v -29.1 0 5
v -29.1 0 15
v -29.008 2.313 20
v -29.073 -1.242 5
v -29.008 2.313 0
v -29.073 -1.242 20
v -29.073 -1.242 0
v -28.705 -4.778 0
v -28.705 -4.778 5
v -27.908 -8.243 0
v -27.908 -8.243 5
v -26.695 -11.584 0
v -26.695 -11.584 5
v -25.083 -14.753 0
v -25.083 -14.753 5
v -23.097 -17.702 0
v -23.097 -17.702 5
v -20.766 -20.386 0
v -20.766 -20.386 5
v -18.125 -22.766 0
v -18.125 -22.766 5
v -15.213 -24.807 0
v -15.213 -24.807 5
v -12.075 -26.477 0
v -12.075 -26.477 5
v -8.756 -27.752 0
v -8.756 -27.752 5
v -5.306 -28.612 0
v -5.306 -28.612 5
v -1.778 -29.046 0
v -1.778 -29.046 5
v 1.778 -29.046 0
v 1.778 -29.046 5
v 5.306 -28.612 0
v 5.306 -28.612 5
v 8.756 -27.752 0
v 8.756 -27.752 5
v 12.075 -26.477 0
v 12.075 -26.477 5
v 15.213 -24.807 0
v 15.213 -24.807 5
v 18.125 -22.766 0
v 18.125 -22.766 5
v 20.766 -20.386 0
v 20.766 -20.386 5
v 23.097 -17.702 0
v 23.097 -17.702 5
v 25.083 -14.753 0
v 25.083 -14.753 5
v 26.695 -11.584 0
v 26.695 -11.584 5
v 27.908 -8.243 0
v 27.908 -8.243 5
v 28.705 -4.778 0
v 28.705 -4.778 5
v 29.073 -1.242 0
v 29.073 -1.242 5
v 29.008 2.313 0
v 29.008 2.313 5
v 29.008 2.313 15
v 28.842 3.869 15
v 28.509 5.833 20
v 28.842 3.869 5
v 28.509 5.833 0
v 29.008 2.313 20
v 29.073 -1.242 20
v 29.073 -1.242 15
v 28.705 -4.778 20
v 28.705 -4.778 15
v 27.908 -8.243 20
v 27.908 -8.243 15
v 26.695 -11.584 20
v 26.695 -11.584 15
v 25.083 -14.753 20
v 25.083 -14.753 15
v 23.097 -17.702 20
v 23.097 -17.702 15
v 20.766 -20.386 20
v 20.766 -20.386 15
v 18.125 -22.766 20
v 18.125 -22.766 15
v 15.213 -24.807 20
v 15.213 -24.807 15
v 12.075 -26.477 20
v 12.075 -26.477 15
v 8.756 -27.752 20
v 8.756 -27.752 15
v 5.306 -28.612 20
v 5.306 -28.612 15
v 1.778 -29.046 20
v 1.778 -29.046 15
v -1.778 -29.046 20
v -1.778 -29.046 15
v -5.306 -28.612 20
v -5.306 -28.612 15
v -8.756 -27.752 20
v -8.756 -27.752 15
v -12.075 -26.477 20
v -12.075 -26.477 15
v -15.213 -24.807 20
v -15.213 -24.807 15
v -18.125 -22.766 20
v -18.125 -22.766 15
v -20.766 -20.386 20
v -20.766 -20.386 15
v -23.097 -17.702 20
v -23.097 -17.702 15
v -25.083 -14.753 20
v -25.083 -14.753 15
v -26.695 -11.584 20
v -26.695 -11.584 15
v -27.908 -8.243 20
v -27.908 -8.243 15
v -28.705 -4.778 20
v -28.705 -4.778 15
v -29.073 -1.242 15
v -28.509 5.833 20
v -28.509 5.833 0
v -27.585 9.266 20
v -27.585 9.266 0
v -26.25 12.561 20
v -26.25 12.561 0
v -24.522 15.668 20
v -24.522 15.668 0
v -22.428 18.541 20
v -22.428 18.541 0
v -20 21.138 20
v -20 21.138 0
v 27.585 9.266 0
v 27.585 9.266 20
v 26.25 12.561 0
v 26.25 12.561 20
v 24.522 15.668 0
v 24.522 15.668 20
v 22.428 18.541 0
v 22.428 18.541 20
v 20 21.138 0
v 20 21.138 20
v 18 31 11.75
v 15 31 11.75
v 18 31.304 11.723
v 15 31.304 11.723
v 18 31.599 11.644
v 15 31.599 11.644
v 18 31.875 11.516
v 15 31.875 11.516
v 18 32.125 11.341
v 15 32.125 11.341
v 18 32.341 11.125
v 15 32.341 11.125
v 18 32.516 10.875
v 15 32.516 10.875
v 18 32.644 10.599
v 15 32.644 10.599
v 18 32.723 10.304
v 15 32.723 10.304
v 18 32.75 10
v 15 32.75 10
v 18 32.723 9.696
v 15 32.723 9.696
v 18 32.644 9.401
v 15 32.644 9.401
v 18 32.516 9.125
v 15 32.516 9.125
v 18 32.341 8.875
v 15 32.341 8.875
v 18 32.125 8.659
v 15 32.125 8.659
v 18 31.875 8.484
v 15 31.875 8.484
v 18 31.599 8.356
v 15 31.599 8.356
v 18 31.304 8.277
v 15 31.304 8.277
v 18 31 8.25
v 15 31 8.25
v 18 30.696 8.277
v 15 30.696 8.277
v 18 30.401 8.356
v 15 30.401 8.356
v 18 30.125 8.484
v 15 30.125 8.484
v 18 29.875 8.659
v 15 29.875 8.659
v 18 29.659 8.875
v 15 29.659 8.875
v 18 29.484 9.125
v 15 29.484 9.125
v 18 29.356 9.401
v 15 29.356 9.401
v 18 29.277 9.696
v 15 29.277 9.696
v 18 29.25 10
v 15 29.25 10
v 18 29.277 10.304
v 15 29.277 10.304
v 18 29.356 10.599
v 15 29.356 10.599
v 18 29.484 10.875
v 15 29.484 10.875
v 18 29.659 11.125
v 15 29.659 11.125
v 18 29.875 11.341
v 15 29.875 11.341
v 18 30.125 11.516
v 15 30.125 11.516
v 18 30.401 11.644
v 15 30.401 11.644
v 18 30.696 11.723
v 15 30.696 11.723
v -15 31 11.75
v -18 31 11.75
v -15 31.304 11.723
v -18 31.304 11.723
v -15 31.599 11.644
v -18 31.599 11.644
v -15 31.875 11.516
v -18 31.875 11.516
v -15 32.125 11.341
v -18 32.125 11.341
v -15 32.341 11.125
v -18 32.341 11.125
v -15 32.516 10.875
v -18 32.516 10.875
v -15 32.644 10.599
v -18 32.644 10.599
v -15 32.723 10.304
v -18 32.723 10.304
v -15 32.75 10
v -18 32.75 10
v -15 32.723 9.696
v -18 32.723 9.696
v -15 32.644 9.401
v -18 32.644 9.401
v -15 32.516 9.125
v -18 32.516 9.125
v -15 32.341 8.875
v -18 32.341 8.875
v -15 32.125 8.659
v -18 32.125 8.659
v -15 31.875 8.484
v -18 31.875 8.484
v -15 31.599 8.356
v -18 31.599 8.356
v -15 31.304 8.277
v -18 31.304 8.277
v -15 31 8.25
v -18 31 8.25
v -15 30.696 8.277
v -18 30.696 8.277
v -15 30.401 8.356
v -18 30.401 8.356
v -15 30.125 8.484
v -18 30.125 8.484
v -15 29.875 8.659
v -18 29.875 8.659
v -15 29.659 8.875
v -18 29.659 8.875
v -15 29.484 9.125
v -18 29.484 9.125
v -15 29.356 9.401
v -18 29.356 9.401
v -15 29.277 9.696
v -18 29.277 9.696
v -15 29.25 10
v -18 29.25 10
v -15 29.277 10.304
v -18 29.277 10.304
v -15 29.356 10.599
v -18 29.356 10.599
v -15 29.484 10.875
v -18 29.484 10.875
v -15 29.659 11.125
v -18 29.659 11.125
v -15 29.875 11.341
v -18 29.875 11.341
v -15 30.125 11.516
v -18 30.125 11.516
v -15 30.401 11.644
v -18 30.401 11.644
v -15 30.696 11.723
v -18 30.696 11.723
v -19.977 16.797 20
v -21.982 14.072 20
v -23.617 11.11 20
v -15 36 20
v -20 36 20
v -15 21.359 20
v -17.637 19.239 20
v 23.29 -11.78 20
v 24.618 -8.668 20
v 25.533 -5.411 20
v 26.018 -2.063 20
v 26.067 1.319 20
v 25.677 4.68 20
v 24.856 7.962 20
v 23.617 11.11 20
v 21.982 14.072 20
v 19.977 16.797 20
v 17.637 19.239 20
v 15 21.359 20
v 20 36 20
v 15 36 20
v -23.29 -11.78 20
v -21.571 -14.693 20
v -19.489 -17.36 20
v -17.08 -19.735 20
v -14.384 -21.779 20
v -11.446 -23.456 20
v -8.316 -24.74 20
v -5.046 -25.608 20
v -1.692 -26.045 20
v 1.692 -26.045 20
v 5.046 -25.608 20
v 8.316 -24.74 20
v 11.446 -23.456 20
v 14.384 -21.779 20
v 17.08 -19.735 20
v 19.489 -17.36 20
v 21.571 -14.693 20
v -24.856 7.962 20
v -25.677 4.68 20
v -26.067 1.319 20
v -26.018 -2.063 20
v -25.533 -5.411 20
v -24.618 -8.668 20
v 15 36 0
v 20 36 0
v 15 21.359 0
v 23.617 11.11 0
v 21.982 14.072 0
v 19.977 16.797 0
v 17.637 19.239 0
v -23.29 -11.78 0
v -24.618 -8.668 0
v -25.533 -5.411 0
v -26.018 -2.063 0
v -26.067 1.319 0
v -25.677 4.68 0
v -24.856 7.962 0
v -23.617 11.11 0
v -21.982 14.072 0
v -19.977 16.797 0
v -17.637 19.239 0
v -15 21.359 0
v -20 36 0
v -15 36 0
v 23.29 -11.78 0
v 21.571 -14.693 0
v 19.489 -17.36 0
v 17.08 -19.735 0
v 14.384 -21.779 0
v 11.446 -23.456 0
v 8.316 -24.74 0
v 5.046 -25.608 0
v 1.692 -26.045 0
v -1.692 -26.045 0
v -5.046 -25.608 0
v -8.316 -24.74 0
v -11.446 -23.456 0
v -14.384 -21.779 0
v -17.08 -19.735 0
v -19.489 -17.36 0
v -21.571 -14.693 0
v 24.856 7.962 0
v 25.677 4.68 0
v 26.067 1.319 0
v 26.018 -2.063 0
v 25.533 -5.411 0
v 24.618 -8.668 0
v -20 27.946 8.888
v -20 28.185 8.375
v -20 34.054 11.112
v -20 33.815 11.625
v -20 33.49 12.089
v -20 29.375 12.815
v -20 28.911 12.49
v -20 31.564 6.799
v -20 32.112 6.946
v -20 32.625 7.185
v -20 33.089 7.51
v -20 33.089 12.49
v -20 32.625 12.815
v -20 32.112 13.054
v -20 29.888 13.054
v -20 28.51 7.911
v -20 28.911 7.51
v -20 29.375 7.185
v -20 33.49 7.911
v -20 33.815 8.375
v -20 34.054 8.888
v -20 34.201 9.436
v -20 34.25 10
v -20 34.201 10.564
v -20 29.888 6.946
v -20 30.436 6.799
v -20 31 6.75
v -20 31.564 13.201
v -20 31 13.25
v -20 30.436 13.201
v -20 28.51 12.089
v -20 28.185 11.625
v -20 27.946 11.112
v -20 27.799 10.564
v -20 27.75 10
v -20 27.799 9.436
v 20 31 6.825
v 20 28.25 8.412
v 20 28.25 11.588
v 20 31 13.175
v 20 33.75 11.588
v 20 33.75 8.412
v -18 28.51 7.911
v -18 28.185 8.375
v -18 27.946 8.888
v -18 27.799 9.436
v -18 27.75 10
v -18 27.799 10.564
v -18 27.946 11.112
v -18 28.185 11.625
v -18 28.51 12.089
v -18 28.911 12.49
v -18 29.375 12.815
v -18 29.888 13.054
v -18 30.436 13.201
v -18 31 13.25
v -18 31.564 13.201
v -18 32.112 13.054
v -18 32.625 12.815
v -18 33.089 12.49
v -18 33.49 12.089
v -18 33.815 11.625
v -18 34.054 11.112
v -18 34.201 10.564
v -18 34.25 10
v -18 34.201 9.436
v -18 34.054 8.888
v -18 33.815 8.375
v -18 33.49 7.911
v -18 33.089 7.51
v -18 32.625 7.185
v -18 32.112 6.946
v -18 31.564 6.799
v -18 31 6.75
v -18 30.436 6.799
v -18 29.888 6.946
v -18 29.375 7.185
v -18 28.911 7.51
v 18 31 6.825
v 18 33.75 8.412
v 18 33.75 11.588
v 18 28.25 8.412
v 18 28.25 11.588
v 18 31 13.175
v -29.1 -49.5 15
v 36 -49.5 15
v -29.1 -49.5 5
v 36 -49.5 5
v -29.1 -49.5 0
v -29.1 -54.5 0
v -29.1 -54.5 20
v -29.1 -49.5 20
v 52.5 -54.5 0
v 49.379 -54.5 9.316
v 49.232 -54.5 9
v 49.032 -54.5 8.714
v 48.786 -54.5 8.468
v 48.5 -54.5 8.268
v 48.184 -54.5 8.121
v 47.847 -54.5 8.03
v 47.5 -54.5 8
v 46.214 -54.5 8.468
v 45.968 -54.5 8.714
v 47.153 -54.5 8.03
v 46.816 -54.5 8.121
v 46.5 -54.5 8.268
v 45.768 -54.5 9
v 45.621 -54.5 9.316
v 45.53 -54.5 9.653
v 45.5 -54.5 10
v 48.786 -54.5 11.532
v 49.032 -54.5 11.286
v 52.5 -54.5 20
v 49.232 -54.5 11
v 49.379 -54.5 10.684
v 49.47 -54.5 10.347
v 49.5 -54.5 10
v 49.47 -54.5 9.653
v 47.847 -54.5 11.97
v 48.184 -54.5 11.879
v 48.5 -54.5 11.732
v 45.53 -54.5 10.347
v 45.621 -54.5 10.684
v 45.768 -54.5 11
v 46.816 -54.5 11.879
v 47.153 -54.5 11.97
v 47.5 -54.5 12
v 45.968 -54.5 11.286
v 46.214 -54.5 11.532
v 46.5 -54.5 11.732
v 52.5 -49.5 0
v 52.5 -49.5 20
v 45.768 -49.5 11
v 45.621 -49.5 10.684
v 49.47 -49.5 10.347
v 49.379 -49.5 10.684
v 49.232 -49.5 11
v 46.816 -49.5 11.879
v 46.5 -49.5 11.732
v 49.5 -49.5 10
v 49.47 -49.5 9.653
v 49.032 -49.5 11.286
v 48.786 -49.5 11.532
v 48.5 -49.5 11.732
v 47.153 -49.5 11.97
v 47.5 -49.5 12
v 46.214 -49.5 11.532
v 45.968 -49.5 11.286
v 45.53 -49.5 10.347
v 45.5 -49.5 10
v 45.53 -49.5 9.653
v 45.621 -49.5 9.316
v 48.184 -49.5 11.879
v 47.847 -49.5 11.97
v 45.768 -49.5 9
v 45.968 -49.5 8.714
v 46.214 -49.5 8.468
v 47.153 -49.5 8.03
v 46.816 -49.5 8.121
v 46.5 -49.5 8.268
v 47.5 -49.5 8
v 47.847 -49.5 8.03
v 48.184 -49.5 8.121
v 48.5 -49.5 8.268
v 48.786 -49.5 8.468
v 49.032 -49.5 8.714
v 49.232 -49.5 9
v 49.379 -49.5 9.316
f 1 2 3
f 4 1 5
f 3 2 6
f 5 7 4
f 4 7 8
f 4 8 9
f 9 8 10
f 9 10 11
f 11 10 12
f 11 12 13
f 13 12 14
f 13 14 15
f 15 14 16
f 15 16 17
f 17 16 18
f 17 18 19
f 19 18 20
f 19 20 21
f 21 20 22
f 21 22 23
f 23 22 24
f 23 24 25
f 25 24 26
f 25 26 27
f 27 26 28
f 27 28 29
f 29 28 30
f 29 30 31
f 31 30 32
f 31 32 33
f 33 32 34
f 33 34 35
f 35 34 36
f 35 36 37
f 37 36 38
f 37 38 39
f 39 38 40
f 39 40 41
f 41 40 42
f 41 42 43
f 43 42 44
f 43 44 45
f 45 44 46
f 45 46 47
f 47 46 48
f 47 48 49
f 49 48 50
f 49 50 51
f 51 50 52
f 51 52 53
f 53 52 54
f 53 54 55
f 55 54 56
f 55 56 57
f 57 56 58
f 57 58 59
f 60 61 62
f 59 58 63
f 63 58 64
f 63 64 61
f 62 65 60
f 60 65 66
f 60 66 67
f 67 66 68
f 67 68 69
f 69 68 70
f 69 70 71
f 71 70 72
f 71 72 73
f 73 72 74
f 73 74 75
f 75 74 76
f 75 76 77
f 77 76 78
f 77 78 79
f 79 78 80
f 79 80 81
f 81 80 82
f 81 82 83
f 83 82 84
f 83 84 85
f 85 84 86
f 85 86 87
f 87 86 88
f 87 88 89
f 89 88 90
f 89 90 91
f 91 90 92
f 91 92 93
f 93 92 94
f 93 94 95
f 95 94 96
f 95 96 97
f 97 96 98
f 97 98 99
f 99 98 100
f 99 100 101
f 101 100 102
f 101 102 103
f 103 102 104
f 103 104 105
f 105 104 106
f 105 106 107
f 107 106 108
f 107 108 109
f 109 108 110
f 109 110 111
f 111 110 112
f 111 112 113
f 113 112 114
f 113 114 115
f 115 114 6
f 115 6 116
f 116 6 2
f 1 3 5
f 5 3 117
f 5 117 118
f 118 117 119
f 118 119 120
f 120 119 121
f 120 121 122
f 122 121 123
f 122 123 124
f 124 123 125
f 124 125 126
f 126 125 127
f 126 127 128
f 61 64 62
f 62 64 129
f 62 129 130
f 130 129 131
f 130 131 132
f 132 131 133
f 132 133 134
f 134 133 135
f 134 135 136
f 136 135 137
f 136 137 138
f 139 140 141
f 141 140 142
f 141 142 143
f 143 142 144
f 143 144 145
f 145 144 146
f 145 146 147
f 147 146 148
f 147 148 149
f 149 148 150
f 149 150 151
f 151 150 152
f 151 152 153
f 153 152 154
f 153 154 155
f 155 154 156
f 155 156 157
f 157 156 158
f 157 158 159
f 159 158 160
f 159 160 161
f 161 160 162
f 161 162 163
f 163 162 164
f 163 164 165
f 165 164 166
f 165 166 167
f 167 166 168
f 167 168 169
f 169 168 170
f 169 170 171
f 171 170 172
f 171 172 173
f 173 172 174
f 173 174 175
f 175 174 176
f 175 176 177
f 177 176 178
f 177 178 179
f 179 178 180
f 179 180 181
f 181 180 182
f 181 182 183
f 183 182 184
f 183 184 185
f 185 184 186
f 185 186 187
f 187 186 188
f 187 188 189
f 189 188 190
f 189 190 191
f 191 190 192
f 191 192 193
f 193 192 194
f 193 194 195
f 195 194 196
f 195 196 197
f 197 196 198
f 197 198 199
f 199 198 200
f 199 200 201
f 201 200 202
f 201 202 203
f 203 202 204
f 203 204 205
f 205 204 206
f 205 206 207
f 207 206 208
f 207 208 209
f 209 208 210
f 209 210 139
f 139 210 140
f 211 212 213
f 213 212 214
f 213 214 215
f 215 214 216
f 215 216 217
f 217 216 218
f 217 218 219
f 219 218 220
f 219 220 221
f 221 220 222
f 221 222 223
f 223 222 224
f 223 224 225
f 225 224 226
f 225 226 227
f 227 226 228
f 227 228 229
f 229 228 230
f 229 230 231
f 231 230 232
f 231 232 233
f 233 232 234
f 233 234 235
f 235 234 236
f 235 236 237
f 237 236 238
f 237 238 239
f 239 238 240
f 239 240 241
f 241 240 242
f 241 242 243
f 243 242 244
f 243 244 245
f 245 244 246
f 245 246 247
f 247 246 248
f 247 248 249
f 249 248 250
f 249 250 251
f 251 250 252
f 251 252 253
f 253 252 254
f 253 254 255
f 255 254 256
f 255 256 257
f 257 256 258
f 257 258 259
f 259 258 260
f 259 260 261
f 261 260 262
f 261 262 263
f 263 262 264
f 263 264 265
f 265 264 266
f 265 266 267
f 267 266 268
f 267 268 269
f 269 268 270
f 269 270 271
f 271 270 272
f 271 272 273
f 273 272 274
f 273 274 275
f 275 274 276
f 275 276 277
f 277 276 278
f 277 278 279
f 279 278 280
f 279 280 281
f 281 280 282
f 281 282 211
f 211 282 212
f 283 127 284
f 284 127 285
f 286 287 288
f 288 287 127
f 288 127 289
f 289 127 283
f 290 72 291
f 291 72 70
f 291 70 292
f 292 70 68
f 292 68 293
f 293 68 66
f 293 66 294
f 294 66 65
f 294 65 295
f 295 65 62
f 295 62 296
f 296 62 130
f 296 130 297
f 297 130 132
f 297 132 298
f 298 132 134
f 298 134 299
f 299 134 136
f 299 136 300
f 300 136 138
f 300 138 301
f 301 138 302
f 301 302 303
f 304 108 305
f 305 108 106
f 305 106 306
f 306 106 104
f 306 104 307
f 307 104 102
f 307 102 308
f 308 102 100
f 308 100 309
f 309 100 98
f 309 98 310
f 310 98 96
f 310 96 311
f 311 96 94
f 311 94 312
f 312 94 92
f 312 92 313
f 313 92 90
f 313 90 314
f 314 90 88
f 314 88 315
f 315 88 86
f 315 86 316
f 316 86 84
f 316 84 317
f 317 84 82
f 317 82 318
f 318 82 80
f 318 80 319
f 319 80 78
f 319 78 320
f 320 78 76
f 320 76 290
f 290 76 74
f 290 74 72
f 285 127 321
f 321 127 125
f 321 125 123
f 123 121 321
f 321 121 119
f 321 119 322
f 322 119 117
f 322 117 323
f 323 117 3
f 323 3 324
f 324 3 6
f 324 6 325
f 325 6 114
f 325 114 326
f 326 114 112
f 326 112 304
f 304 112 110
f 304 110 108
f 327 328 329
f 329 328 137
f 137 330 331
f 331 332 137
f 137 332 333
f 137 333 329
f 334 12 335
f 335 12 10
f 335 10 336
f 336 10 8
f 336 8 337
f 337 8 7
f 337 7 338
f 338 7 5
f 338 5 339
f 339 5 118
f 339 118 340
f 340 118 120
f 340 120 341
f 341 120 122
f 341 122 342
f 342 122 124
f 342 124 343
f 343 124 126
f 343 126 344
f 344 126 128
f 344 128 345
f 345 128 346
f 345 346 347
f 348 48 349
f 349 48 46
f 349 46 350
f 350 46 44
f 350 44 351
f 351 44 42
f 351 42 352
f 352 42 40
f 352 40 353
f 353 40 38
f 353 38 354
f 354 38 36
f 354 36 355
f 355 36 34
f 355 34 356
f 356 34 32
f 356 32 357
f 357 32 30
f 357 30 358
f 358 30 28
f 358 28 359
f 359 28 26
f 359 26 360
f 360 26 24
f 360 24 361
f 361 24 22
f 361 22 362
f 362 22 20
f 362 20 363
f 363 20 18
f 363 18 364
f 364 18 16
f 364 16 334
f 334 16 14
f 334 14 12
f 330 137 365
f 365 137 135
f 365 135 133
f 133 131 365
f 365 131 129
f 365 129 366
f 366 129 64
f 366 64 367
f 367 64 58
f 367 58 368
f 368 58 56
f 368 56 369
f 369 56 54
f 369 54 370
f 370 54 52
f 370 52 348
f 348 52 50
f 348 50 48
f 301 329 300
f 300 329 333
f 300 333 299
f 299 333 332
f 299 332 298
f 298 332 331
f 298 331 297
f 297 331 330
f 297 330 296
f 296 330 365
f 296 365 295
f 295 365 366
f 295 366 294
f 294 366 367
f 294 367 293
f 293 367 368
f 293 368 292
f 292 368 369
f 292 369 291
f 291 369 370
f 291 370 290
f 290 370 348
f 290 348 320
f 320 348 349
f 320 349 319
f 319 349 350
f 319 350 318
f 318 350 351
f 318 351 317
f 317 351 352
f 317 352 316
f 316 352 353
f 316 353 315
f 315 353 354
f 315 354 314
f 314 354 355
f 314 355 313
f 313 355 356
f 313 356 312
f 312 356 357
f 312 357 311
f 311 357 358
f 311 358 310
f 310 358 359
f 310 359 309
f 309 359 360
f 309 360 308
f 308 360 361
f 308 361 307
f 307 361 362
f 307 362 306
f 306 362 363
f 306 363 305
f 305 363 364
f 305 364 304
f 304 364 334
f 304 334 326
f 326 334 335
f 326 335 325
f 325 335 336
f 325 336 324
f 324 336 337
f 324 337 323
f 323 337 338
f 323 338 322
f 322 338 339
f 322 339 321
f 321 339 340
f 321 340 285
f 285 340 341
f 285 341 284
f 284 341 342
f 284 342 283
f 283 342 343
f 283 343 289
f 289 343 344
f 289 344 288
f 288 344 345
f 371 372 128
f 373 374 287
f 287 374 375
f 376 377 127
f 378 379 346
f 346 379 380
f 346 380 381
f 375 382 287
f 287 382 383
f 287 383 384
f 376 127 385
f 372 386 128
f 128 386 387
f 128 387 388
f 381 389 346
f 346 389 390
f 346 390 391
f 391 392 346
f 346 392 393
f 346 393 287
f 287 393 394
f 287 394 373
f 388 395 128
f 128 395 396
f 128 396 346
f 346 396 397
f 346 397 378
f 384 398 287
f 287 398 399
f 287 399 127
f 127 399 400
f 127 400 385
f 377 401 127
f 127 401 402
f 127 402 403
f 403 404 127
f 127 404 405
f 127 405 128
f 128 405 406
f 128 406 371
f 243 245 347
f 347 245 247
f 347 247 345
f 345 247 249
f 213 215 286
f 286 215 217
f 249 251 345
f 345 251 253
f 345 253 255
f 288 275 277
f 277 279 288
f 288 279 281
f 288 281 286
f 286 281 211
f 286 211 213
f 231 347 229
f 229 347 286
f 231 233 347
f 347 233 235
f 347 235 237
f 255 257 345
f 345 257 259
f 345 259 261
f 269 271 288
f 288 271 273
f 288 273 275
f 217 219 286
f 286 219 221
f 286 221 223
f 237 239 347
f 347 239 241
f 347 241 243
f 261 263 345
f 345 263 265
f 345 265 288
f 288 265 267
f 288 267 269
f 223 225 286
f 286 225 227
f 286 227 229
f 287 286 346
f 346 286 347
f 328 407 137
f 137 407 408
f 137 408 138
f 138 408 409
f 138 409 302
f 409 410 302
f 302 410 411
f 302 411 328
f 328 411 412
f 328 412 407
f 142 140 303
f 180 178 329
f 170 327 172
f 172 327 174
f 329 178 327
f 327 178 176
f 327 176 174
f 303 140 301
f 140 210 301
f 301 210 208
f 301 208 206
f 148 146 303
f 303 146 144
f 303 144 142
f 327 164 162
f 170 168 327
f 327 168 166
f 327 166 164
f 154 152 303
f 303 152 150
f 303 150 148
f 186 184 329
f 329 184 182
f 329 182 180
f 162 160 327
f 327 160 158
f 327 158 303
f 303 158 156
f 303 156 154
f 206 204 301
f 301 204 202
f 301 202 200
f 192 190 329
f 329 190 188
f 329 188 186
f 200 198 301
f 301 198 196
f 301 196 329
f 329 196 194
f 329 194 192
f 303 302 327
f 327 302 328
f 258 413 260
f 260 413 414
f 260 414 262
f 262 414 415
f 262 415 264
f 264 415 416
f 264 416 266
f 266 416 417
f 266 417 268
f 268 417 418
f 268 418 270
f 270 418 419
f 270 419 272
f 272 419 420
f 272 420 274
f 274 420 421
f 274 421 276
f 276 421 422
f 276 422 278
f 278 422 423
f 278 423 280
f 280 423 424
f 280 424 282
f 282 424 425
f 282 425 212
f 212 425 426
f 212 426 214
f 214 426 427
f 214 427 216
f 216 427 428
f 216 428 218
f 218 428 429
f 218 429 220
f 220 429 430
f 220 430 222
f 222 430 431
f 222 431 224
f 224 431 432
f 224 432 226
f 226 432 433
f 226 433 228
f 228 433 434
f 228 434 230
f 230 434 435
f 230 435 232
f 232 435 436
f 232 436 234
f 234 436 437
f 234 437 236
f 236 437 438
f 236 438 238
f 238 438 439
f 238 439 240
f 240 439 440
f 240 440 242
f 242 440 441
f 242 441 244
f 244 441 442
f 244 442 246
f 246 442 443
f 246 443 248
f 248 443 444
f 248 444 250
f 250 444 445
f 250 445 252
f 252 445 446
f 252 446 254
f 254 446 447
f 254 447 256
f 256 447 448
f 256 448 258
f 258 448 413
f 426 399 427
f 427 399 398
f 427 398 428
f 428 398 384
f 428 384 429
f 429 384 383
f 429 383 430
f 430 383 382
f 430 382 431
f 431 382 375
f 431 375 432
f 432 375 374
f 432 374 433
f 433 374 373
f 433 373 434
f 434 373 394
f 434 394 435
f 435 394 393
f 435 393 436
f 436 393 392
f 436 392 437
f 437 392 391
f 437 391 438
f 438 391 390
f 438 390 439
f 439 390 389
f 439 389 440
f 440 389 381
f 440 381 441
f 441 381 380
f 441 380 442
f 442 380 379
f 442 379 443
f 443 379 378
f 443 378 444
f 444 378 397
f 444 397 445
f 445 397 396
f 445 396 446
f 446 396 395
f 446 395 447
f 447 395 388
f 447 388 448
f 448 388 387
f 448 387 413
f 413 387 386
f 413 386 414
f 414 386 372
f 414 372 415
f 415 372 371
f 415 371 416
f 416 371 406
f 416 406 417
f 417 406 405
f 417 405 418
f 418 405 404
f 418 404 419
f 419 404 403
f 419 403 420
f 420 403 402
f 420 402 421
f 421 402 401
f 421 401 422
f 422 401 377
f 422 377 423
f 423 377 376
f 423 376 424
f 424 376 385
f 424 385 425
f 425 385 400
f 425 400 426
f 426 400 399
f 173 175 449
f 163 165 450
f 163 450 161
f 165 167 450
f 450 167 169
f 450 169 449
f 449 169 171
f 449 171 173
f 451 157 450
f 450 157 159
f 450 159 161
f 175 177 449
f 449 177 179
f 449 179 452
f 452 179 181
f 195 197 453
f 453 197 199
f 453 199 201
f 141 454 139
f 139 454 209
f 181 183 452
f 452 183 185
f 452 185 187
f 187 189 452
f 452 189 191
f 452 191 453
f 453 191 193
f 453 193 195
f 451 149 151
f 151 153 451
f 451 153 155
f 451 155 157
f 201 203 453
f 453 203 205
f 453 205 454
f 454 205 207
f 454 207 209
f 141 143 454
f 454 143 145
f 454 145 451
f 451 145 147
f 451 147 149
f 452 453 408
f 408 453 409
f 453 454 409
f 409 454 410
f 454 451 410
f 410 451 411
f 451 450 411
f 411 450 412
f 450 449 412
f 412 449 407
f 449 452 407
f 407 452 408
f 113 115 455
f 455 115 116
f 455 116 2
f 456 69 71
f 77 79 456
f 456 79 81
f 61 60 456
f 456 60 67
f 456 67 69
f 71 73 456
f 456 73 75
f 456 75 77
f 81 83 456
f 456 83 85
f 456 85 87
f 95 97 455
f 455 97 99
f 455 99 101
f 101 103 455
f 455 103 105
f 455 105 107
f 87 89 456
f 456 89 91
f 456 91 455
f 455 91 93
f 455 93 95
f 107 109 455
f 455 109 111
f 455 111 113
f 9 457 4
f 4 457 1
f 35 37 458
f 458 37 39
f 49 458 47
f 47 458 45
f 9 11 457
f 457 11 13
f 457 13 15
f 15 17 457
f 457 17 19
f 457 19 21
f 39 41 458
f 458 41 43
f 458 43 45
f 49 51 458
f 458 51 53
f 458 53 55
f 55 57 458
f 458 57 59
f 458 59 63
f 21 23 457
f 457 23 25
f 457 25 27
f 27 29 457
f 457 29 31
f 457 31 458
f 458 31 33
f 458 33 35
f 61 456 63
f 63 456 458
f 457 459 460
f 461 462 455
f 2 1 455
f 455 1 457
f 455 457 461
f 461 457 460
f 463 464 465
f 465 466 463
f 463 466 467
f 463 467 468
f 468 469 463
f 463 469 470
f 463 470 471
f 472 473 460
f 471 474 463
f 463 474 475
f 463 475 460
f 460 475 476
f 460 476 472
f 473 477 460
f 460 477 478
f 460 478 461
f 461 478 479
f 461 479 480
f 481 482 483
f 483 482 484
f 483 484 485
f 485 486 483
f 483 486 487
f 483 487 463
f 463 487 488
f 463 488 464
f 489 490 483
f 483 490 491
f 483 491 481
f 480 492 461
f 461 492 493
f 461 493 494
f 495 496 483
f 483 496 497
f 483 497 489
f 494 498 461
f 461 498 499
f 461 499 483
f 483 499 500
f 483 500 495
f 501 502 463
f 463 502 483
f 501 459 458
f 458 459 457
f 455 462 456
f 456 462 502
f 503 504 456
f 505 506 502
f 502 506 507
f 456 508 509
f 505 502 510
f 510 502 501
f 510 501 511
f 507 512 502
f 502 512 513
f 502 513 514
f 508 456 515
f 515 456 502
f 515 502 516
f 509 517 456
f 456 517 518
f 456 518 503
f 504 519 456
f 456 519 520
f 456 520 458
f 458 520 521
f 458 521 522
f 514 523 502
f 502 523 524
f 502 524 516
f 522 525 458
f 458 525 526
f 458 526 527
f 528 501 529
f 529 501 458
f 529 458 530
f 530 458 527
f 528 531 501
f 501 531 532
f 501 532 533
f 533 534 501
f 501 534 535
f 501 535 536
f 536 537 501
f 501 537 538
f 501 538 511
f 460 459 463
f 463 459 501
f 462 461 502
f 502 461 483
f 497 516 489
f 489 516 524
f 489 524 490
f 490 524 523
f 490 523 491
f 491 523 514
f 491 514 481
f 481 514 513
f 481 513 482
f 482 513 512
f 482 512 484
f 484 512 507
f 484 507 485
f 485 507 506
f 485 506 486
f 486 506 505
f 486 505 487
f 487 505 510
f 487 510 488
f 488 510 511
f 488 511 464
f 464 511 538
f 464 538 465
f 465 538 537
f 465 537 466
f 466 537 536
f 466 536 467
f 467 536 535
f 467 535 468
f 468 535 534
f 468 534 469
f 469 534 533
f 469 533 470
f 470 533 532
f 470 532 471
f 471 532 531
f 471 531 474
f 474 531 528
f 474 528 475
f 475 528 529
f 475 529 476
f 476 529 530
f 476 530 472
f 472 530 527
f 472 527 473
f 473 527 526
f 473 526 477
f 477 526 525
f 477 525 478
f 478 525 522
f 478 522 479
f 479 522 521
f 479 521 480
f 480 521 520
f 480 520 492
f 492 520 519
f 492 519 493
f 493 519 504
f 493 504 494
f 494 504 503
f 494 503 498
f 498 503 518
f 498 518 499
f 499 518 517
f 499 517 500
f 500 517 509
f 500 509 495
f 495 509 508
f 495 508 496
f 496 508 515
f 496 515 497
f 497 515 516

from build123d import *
from build123d.topology import SkipClean

# Parameters (mm, degrees)
SCHIZZO1_R                   = 29.1
SCHIZZO1_R_2                 = 26.1
ESTRUSIONE_ESTRUSIONE1_DEPTH = 20
SCHIZZO2_W                   = 5
SCHIZZO2_H                   = 17.200297627
ESTRUSIONE_ESTRUSIONE2_DEPTH = 20
SCHIZZO3_W                   = 30
SCHIZZO3_H                   = 16.910350343
TAGLIO_ESTRUSIONE1_DEPTH     = 51.426282829
TAGLIO_ESTRUSIONE3_DEPTH     = 51.426282829
SCHIZZO5_R                   = 1.75
TAGLIO_ESTRUSIONE4_DEPTH     = 65.084397477
SCHIZZO6_R                   = 3.25
TAGLIO_ESTRUSIONE5_DEPTH     = 2
TAGLIO_ESTRUSIONE6_DEPTH     = 2
ESTRUSIONE_ESTRUSIONE3_START = -5
ESTRUSIONE_ESTRUSIONE3_DEPTH = 10
ESTRUSIONE_ESTRUSIONE4_START = 5
SCHIZZO10_W                  = 81.6
SCHIZZO10_H                  = 5
ESTRUSIONE_ESTRUSIONE4_DEPTH = 20
SCHIZZO9_R                   = 2
TAGLIO_ESTRUSIONE7_DEPTH     = 103.305913808


with BuildPart() as part:
    # Schizzo1 → Estrusione-Estrusione1 (new body)
    with BuildSketch(Plane.XY):
        Circle(SCHIZZO1_R)
        Circle(SCHIZZO1_R_2, mode=Mode.SUBTRACT)
    extrude(amount=ESTRUSIONE_ESTRUSIONE1_DEPTH)

    # Schizzo2 → Estrusione-Estrusione2 (add)
    with BuildSketch(Plane.XY.offset(20)):
        with Locations((-17.5, 27.399851187)):
            Rectangle(SCHIZZO2_W, SCHIZZO2_H)
        with Locations((17.5, 27.399851187)):
            Rectangle(SCHIZZO2_W, SCHIZZO2_H)
    extrude(amount=-ESTRUSIONE_ESTRUSIONE2_DEPTH)

    # Schizzo3 → Taglio-Estrusione1 (cut, through all)
    with BuildSketch(Plane.XY.offset(20)):
        with Locations((0, 27.544824829)):
            Rectangle(SCHIZZO3_W, SCHIZZO3_H)
    extrude(amount=-TAGLIO_ESTRUSIONE1_DEPTH, mode=Mode.SUBTRACT)

    # Schizzo4 → Taglio-Estrusione3 (cut, through all)
    with SkipClean():  # the faces are left unmerged after this step: merging them gives an invalid solid
        with BuildSketch(Plane.XY.offset(20)):
            with BuildLine():
                Line((-15, 18.799702373), (-18.104728407, 18.799702373))
                ThreePointArc((-18.104728407, 18.799702373), (-10.214611803, -24.01815367), (26.1, 0))
                ThreePointArc((26.1, 0), (24.01815367, 10.214611803), (18.104728407, 18.799702373))
                Line((18.104728407, 18.799702373), (15, 18.799702373))
                Line((15, 18.799702373), (15, 21.359073014))
                ThreePointArc((15, 21.359073014), (0, 26.1), (-15, 21.359073014))
                Line((-15, 21.359073014), (-15, 18.799702373))
            make_face()
            with BuildLine():
                ThreePointArc((-15, 21.359073014), (-16.601757595, 20.139305965), (-18.104728407, 18.799702373))
                Line((-18.104728407, 18.799702373), (-15, 18.799702373))
                Line((-15, 18.799702373), (-15, 21.359073014))
            make_face()
            with BuildLine():
                Line((15, 18.799702373), (18.104728407, 18.799702373))
                ThreePointArc((18.104728407, 18.799702373), (16.601757595, 20.139305965), (15, 21.359073014))
                Line((15, 21.359073014), (15, 18.799702373))
            make_face()
        extrude(amount=-TAGLIO_ESTRUSIONE3_DEPTH, mode=Mode.SUBTRACT)

    # Schizzo5 → Taglio-Estrusione4 (cut, through all)
    with SkipClean():  # the faces are left unmerged after this step: merging them gives an invalid solid
        with BuildSketch(Plane.ZY.offset(20)):
            with Locations((10, 31)):
                Circle(SCHIZZO5_R)
        extrude(amount=-TAGLIO_ESTRUSIONE4_DEPTH, mode=Mode.SUBTRACT)

    # Schizzo6 → Taglio-Estrusione5 (cut)
    with SkipClean():  # the faces are left unmerged after this step: merging them gives an invalid solid
        with BuildSketch(Plane.ZY.offset(20)):
            with Locations((10, 31)):
                Circle(SCHIZZO6_R)
        extrude(amount=-TAGLIO_ESTRUSIONE5_DEPTH, mode=Mode.SUBTRACT)

    # Schizzo7 → Taglio-Estrusione6 (cut)
    with SkipClean():  # the faces are left unmerged after this step: merging them gives an invalid solid
        with BuildSketch(Plane(origin=(20, 0, 0), x_dir=(0, 0, -1), z_dir=(1, 0, 0))):
            Polygon((-8.41228676, 28.25), (-6.824573519, 31), (-8.41228676, 33.75), (-11.58771324, 33.75), (-13.175426481, 31), (-11.58771324, 28.25), align=None)
        extrude(amount=-TAGLIO_ESTRUSIONE6_DEPTH, mode=Mode.SUBTRACT)

    # Schizzo8 → Estrusione-Estrusione3 (add)
    with SkipClean():  # the faces are left unmerged after this step: merging them gives an invalid solid
        with BuildSketch(Plane(origin=(0, 0, 0), x_dir=(-1, 0, 0), z_dir=(0, 0, -1)).offset(ESTRUSIONE_ESTRUSIONE3_START)):
            with BuildLine():
                Line((-52.5, -49.5), (-52.5, -54.5))
                Line((-52.5, -54.5), (29.1, -54.5))
                Line((29.1, -54.5), (29.1, 0))
                ThreePointArc((29.1, 0), (-1.93856651, -29.035357065), (-28.841715456, 3.868520332))
                Line((-28.841715456, 3.868520332), (-36, -49.5))
                Line((-36, -49.5), (-52.5, -49.5))
            make_face()
            with BuildLine():
                ThreePointArc((-28.841715456, 3.868520332), (-1.93856651, -29.035357065), (29.1, 0))
                Line((29.1, 0), (26.099231032, 0.2003485))
                ThreePointArc((26.099231032, 0.2003485), (-1.738714293, -26.042021285), (-25.840946488, 3.668171832))
                Line((-25.840946488, 3.668171832), (-28.841715456, 3.868520332))
            make_face()
        extrude(amount=-ESTRUSIONE_ESTRUSIONE3_DEPTH)

    # Schizzo10 → Estrusione-Estrusione4 (add)
    with SkipClean():  # the faces are left unmerged after this step: merging them gives an invalid solid
        with BuildSketch(Plane(origin=(0, 0, 5), x_dir=(-1, 0, 0), z_dir=(0, 0, -1)).offset(ESTRUSIONE_ESTRUSIONE4_START)):
            with Locations((-11.7, -52)):
                Rectangle(SCHIZZO10_W, SCHIZZO10_H)
        extrude(amount=-ESTRUSIONE_ESTRUSIONE4_DEPTH)

    # Schizzo9 → Taglio-Estrusione7 (cut, through all)
    with SkipClean():  # the faces are left unmerged after this step: merging them gives an invalid solid
        with BuildSketch(Plane(origin=(0, -49.5, 0), x_dir=(1, 0, 0), z_dir=(0, 1, 0))):
            with Locations(Location((47.5, -10, 0), (0, 0, 270))):
                Circle(SCHIZZO9_R)
        extrude(amount=-TAGLIO_ESTRUSIONE7_DEPTH, mode=Mode.SUBTRACT)


solid = part.part
